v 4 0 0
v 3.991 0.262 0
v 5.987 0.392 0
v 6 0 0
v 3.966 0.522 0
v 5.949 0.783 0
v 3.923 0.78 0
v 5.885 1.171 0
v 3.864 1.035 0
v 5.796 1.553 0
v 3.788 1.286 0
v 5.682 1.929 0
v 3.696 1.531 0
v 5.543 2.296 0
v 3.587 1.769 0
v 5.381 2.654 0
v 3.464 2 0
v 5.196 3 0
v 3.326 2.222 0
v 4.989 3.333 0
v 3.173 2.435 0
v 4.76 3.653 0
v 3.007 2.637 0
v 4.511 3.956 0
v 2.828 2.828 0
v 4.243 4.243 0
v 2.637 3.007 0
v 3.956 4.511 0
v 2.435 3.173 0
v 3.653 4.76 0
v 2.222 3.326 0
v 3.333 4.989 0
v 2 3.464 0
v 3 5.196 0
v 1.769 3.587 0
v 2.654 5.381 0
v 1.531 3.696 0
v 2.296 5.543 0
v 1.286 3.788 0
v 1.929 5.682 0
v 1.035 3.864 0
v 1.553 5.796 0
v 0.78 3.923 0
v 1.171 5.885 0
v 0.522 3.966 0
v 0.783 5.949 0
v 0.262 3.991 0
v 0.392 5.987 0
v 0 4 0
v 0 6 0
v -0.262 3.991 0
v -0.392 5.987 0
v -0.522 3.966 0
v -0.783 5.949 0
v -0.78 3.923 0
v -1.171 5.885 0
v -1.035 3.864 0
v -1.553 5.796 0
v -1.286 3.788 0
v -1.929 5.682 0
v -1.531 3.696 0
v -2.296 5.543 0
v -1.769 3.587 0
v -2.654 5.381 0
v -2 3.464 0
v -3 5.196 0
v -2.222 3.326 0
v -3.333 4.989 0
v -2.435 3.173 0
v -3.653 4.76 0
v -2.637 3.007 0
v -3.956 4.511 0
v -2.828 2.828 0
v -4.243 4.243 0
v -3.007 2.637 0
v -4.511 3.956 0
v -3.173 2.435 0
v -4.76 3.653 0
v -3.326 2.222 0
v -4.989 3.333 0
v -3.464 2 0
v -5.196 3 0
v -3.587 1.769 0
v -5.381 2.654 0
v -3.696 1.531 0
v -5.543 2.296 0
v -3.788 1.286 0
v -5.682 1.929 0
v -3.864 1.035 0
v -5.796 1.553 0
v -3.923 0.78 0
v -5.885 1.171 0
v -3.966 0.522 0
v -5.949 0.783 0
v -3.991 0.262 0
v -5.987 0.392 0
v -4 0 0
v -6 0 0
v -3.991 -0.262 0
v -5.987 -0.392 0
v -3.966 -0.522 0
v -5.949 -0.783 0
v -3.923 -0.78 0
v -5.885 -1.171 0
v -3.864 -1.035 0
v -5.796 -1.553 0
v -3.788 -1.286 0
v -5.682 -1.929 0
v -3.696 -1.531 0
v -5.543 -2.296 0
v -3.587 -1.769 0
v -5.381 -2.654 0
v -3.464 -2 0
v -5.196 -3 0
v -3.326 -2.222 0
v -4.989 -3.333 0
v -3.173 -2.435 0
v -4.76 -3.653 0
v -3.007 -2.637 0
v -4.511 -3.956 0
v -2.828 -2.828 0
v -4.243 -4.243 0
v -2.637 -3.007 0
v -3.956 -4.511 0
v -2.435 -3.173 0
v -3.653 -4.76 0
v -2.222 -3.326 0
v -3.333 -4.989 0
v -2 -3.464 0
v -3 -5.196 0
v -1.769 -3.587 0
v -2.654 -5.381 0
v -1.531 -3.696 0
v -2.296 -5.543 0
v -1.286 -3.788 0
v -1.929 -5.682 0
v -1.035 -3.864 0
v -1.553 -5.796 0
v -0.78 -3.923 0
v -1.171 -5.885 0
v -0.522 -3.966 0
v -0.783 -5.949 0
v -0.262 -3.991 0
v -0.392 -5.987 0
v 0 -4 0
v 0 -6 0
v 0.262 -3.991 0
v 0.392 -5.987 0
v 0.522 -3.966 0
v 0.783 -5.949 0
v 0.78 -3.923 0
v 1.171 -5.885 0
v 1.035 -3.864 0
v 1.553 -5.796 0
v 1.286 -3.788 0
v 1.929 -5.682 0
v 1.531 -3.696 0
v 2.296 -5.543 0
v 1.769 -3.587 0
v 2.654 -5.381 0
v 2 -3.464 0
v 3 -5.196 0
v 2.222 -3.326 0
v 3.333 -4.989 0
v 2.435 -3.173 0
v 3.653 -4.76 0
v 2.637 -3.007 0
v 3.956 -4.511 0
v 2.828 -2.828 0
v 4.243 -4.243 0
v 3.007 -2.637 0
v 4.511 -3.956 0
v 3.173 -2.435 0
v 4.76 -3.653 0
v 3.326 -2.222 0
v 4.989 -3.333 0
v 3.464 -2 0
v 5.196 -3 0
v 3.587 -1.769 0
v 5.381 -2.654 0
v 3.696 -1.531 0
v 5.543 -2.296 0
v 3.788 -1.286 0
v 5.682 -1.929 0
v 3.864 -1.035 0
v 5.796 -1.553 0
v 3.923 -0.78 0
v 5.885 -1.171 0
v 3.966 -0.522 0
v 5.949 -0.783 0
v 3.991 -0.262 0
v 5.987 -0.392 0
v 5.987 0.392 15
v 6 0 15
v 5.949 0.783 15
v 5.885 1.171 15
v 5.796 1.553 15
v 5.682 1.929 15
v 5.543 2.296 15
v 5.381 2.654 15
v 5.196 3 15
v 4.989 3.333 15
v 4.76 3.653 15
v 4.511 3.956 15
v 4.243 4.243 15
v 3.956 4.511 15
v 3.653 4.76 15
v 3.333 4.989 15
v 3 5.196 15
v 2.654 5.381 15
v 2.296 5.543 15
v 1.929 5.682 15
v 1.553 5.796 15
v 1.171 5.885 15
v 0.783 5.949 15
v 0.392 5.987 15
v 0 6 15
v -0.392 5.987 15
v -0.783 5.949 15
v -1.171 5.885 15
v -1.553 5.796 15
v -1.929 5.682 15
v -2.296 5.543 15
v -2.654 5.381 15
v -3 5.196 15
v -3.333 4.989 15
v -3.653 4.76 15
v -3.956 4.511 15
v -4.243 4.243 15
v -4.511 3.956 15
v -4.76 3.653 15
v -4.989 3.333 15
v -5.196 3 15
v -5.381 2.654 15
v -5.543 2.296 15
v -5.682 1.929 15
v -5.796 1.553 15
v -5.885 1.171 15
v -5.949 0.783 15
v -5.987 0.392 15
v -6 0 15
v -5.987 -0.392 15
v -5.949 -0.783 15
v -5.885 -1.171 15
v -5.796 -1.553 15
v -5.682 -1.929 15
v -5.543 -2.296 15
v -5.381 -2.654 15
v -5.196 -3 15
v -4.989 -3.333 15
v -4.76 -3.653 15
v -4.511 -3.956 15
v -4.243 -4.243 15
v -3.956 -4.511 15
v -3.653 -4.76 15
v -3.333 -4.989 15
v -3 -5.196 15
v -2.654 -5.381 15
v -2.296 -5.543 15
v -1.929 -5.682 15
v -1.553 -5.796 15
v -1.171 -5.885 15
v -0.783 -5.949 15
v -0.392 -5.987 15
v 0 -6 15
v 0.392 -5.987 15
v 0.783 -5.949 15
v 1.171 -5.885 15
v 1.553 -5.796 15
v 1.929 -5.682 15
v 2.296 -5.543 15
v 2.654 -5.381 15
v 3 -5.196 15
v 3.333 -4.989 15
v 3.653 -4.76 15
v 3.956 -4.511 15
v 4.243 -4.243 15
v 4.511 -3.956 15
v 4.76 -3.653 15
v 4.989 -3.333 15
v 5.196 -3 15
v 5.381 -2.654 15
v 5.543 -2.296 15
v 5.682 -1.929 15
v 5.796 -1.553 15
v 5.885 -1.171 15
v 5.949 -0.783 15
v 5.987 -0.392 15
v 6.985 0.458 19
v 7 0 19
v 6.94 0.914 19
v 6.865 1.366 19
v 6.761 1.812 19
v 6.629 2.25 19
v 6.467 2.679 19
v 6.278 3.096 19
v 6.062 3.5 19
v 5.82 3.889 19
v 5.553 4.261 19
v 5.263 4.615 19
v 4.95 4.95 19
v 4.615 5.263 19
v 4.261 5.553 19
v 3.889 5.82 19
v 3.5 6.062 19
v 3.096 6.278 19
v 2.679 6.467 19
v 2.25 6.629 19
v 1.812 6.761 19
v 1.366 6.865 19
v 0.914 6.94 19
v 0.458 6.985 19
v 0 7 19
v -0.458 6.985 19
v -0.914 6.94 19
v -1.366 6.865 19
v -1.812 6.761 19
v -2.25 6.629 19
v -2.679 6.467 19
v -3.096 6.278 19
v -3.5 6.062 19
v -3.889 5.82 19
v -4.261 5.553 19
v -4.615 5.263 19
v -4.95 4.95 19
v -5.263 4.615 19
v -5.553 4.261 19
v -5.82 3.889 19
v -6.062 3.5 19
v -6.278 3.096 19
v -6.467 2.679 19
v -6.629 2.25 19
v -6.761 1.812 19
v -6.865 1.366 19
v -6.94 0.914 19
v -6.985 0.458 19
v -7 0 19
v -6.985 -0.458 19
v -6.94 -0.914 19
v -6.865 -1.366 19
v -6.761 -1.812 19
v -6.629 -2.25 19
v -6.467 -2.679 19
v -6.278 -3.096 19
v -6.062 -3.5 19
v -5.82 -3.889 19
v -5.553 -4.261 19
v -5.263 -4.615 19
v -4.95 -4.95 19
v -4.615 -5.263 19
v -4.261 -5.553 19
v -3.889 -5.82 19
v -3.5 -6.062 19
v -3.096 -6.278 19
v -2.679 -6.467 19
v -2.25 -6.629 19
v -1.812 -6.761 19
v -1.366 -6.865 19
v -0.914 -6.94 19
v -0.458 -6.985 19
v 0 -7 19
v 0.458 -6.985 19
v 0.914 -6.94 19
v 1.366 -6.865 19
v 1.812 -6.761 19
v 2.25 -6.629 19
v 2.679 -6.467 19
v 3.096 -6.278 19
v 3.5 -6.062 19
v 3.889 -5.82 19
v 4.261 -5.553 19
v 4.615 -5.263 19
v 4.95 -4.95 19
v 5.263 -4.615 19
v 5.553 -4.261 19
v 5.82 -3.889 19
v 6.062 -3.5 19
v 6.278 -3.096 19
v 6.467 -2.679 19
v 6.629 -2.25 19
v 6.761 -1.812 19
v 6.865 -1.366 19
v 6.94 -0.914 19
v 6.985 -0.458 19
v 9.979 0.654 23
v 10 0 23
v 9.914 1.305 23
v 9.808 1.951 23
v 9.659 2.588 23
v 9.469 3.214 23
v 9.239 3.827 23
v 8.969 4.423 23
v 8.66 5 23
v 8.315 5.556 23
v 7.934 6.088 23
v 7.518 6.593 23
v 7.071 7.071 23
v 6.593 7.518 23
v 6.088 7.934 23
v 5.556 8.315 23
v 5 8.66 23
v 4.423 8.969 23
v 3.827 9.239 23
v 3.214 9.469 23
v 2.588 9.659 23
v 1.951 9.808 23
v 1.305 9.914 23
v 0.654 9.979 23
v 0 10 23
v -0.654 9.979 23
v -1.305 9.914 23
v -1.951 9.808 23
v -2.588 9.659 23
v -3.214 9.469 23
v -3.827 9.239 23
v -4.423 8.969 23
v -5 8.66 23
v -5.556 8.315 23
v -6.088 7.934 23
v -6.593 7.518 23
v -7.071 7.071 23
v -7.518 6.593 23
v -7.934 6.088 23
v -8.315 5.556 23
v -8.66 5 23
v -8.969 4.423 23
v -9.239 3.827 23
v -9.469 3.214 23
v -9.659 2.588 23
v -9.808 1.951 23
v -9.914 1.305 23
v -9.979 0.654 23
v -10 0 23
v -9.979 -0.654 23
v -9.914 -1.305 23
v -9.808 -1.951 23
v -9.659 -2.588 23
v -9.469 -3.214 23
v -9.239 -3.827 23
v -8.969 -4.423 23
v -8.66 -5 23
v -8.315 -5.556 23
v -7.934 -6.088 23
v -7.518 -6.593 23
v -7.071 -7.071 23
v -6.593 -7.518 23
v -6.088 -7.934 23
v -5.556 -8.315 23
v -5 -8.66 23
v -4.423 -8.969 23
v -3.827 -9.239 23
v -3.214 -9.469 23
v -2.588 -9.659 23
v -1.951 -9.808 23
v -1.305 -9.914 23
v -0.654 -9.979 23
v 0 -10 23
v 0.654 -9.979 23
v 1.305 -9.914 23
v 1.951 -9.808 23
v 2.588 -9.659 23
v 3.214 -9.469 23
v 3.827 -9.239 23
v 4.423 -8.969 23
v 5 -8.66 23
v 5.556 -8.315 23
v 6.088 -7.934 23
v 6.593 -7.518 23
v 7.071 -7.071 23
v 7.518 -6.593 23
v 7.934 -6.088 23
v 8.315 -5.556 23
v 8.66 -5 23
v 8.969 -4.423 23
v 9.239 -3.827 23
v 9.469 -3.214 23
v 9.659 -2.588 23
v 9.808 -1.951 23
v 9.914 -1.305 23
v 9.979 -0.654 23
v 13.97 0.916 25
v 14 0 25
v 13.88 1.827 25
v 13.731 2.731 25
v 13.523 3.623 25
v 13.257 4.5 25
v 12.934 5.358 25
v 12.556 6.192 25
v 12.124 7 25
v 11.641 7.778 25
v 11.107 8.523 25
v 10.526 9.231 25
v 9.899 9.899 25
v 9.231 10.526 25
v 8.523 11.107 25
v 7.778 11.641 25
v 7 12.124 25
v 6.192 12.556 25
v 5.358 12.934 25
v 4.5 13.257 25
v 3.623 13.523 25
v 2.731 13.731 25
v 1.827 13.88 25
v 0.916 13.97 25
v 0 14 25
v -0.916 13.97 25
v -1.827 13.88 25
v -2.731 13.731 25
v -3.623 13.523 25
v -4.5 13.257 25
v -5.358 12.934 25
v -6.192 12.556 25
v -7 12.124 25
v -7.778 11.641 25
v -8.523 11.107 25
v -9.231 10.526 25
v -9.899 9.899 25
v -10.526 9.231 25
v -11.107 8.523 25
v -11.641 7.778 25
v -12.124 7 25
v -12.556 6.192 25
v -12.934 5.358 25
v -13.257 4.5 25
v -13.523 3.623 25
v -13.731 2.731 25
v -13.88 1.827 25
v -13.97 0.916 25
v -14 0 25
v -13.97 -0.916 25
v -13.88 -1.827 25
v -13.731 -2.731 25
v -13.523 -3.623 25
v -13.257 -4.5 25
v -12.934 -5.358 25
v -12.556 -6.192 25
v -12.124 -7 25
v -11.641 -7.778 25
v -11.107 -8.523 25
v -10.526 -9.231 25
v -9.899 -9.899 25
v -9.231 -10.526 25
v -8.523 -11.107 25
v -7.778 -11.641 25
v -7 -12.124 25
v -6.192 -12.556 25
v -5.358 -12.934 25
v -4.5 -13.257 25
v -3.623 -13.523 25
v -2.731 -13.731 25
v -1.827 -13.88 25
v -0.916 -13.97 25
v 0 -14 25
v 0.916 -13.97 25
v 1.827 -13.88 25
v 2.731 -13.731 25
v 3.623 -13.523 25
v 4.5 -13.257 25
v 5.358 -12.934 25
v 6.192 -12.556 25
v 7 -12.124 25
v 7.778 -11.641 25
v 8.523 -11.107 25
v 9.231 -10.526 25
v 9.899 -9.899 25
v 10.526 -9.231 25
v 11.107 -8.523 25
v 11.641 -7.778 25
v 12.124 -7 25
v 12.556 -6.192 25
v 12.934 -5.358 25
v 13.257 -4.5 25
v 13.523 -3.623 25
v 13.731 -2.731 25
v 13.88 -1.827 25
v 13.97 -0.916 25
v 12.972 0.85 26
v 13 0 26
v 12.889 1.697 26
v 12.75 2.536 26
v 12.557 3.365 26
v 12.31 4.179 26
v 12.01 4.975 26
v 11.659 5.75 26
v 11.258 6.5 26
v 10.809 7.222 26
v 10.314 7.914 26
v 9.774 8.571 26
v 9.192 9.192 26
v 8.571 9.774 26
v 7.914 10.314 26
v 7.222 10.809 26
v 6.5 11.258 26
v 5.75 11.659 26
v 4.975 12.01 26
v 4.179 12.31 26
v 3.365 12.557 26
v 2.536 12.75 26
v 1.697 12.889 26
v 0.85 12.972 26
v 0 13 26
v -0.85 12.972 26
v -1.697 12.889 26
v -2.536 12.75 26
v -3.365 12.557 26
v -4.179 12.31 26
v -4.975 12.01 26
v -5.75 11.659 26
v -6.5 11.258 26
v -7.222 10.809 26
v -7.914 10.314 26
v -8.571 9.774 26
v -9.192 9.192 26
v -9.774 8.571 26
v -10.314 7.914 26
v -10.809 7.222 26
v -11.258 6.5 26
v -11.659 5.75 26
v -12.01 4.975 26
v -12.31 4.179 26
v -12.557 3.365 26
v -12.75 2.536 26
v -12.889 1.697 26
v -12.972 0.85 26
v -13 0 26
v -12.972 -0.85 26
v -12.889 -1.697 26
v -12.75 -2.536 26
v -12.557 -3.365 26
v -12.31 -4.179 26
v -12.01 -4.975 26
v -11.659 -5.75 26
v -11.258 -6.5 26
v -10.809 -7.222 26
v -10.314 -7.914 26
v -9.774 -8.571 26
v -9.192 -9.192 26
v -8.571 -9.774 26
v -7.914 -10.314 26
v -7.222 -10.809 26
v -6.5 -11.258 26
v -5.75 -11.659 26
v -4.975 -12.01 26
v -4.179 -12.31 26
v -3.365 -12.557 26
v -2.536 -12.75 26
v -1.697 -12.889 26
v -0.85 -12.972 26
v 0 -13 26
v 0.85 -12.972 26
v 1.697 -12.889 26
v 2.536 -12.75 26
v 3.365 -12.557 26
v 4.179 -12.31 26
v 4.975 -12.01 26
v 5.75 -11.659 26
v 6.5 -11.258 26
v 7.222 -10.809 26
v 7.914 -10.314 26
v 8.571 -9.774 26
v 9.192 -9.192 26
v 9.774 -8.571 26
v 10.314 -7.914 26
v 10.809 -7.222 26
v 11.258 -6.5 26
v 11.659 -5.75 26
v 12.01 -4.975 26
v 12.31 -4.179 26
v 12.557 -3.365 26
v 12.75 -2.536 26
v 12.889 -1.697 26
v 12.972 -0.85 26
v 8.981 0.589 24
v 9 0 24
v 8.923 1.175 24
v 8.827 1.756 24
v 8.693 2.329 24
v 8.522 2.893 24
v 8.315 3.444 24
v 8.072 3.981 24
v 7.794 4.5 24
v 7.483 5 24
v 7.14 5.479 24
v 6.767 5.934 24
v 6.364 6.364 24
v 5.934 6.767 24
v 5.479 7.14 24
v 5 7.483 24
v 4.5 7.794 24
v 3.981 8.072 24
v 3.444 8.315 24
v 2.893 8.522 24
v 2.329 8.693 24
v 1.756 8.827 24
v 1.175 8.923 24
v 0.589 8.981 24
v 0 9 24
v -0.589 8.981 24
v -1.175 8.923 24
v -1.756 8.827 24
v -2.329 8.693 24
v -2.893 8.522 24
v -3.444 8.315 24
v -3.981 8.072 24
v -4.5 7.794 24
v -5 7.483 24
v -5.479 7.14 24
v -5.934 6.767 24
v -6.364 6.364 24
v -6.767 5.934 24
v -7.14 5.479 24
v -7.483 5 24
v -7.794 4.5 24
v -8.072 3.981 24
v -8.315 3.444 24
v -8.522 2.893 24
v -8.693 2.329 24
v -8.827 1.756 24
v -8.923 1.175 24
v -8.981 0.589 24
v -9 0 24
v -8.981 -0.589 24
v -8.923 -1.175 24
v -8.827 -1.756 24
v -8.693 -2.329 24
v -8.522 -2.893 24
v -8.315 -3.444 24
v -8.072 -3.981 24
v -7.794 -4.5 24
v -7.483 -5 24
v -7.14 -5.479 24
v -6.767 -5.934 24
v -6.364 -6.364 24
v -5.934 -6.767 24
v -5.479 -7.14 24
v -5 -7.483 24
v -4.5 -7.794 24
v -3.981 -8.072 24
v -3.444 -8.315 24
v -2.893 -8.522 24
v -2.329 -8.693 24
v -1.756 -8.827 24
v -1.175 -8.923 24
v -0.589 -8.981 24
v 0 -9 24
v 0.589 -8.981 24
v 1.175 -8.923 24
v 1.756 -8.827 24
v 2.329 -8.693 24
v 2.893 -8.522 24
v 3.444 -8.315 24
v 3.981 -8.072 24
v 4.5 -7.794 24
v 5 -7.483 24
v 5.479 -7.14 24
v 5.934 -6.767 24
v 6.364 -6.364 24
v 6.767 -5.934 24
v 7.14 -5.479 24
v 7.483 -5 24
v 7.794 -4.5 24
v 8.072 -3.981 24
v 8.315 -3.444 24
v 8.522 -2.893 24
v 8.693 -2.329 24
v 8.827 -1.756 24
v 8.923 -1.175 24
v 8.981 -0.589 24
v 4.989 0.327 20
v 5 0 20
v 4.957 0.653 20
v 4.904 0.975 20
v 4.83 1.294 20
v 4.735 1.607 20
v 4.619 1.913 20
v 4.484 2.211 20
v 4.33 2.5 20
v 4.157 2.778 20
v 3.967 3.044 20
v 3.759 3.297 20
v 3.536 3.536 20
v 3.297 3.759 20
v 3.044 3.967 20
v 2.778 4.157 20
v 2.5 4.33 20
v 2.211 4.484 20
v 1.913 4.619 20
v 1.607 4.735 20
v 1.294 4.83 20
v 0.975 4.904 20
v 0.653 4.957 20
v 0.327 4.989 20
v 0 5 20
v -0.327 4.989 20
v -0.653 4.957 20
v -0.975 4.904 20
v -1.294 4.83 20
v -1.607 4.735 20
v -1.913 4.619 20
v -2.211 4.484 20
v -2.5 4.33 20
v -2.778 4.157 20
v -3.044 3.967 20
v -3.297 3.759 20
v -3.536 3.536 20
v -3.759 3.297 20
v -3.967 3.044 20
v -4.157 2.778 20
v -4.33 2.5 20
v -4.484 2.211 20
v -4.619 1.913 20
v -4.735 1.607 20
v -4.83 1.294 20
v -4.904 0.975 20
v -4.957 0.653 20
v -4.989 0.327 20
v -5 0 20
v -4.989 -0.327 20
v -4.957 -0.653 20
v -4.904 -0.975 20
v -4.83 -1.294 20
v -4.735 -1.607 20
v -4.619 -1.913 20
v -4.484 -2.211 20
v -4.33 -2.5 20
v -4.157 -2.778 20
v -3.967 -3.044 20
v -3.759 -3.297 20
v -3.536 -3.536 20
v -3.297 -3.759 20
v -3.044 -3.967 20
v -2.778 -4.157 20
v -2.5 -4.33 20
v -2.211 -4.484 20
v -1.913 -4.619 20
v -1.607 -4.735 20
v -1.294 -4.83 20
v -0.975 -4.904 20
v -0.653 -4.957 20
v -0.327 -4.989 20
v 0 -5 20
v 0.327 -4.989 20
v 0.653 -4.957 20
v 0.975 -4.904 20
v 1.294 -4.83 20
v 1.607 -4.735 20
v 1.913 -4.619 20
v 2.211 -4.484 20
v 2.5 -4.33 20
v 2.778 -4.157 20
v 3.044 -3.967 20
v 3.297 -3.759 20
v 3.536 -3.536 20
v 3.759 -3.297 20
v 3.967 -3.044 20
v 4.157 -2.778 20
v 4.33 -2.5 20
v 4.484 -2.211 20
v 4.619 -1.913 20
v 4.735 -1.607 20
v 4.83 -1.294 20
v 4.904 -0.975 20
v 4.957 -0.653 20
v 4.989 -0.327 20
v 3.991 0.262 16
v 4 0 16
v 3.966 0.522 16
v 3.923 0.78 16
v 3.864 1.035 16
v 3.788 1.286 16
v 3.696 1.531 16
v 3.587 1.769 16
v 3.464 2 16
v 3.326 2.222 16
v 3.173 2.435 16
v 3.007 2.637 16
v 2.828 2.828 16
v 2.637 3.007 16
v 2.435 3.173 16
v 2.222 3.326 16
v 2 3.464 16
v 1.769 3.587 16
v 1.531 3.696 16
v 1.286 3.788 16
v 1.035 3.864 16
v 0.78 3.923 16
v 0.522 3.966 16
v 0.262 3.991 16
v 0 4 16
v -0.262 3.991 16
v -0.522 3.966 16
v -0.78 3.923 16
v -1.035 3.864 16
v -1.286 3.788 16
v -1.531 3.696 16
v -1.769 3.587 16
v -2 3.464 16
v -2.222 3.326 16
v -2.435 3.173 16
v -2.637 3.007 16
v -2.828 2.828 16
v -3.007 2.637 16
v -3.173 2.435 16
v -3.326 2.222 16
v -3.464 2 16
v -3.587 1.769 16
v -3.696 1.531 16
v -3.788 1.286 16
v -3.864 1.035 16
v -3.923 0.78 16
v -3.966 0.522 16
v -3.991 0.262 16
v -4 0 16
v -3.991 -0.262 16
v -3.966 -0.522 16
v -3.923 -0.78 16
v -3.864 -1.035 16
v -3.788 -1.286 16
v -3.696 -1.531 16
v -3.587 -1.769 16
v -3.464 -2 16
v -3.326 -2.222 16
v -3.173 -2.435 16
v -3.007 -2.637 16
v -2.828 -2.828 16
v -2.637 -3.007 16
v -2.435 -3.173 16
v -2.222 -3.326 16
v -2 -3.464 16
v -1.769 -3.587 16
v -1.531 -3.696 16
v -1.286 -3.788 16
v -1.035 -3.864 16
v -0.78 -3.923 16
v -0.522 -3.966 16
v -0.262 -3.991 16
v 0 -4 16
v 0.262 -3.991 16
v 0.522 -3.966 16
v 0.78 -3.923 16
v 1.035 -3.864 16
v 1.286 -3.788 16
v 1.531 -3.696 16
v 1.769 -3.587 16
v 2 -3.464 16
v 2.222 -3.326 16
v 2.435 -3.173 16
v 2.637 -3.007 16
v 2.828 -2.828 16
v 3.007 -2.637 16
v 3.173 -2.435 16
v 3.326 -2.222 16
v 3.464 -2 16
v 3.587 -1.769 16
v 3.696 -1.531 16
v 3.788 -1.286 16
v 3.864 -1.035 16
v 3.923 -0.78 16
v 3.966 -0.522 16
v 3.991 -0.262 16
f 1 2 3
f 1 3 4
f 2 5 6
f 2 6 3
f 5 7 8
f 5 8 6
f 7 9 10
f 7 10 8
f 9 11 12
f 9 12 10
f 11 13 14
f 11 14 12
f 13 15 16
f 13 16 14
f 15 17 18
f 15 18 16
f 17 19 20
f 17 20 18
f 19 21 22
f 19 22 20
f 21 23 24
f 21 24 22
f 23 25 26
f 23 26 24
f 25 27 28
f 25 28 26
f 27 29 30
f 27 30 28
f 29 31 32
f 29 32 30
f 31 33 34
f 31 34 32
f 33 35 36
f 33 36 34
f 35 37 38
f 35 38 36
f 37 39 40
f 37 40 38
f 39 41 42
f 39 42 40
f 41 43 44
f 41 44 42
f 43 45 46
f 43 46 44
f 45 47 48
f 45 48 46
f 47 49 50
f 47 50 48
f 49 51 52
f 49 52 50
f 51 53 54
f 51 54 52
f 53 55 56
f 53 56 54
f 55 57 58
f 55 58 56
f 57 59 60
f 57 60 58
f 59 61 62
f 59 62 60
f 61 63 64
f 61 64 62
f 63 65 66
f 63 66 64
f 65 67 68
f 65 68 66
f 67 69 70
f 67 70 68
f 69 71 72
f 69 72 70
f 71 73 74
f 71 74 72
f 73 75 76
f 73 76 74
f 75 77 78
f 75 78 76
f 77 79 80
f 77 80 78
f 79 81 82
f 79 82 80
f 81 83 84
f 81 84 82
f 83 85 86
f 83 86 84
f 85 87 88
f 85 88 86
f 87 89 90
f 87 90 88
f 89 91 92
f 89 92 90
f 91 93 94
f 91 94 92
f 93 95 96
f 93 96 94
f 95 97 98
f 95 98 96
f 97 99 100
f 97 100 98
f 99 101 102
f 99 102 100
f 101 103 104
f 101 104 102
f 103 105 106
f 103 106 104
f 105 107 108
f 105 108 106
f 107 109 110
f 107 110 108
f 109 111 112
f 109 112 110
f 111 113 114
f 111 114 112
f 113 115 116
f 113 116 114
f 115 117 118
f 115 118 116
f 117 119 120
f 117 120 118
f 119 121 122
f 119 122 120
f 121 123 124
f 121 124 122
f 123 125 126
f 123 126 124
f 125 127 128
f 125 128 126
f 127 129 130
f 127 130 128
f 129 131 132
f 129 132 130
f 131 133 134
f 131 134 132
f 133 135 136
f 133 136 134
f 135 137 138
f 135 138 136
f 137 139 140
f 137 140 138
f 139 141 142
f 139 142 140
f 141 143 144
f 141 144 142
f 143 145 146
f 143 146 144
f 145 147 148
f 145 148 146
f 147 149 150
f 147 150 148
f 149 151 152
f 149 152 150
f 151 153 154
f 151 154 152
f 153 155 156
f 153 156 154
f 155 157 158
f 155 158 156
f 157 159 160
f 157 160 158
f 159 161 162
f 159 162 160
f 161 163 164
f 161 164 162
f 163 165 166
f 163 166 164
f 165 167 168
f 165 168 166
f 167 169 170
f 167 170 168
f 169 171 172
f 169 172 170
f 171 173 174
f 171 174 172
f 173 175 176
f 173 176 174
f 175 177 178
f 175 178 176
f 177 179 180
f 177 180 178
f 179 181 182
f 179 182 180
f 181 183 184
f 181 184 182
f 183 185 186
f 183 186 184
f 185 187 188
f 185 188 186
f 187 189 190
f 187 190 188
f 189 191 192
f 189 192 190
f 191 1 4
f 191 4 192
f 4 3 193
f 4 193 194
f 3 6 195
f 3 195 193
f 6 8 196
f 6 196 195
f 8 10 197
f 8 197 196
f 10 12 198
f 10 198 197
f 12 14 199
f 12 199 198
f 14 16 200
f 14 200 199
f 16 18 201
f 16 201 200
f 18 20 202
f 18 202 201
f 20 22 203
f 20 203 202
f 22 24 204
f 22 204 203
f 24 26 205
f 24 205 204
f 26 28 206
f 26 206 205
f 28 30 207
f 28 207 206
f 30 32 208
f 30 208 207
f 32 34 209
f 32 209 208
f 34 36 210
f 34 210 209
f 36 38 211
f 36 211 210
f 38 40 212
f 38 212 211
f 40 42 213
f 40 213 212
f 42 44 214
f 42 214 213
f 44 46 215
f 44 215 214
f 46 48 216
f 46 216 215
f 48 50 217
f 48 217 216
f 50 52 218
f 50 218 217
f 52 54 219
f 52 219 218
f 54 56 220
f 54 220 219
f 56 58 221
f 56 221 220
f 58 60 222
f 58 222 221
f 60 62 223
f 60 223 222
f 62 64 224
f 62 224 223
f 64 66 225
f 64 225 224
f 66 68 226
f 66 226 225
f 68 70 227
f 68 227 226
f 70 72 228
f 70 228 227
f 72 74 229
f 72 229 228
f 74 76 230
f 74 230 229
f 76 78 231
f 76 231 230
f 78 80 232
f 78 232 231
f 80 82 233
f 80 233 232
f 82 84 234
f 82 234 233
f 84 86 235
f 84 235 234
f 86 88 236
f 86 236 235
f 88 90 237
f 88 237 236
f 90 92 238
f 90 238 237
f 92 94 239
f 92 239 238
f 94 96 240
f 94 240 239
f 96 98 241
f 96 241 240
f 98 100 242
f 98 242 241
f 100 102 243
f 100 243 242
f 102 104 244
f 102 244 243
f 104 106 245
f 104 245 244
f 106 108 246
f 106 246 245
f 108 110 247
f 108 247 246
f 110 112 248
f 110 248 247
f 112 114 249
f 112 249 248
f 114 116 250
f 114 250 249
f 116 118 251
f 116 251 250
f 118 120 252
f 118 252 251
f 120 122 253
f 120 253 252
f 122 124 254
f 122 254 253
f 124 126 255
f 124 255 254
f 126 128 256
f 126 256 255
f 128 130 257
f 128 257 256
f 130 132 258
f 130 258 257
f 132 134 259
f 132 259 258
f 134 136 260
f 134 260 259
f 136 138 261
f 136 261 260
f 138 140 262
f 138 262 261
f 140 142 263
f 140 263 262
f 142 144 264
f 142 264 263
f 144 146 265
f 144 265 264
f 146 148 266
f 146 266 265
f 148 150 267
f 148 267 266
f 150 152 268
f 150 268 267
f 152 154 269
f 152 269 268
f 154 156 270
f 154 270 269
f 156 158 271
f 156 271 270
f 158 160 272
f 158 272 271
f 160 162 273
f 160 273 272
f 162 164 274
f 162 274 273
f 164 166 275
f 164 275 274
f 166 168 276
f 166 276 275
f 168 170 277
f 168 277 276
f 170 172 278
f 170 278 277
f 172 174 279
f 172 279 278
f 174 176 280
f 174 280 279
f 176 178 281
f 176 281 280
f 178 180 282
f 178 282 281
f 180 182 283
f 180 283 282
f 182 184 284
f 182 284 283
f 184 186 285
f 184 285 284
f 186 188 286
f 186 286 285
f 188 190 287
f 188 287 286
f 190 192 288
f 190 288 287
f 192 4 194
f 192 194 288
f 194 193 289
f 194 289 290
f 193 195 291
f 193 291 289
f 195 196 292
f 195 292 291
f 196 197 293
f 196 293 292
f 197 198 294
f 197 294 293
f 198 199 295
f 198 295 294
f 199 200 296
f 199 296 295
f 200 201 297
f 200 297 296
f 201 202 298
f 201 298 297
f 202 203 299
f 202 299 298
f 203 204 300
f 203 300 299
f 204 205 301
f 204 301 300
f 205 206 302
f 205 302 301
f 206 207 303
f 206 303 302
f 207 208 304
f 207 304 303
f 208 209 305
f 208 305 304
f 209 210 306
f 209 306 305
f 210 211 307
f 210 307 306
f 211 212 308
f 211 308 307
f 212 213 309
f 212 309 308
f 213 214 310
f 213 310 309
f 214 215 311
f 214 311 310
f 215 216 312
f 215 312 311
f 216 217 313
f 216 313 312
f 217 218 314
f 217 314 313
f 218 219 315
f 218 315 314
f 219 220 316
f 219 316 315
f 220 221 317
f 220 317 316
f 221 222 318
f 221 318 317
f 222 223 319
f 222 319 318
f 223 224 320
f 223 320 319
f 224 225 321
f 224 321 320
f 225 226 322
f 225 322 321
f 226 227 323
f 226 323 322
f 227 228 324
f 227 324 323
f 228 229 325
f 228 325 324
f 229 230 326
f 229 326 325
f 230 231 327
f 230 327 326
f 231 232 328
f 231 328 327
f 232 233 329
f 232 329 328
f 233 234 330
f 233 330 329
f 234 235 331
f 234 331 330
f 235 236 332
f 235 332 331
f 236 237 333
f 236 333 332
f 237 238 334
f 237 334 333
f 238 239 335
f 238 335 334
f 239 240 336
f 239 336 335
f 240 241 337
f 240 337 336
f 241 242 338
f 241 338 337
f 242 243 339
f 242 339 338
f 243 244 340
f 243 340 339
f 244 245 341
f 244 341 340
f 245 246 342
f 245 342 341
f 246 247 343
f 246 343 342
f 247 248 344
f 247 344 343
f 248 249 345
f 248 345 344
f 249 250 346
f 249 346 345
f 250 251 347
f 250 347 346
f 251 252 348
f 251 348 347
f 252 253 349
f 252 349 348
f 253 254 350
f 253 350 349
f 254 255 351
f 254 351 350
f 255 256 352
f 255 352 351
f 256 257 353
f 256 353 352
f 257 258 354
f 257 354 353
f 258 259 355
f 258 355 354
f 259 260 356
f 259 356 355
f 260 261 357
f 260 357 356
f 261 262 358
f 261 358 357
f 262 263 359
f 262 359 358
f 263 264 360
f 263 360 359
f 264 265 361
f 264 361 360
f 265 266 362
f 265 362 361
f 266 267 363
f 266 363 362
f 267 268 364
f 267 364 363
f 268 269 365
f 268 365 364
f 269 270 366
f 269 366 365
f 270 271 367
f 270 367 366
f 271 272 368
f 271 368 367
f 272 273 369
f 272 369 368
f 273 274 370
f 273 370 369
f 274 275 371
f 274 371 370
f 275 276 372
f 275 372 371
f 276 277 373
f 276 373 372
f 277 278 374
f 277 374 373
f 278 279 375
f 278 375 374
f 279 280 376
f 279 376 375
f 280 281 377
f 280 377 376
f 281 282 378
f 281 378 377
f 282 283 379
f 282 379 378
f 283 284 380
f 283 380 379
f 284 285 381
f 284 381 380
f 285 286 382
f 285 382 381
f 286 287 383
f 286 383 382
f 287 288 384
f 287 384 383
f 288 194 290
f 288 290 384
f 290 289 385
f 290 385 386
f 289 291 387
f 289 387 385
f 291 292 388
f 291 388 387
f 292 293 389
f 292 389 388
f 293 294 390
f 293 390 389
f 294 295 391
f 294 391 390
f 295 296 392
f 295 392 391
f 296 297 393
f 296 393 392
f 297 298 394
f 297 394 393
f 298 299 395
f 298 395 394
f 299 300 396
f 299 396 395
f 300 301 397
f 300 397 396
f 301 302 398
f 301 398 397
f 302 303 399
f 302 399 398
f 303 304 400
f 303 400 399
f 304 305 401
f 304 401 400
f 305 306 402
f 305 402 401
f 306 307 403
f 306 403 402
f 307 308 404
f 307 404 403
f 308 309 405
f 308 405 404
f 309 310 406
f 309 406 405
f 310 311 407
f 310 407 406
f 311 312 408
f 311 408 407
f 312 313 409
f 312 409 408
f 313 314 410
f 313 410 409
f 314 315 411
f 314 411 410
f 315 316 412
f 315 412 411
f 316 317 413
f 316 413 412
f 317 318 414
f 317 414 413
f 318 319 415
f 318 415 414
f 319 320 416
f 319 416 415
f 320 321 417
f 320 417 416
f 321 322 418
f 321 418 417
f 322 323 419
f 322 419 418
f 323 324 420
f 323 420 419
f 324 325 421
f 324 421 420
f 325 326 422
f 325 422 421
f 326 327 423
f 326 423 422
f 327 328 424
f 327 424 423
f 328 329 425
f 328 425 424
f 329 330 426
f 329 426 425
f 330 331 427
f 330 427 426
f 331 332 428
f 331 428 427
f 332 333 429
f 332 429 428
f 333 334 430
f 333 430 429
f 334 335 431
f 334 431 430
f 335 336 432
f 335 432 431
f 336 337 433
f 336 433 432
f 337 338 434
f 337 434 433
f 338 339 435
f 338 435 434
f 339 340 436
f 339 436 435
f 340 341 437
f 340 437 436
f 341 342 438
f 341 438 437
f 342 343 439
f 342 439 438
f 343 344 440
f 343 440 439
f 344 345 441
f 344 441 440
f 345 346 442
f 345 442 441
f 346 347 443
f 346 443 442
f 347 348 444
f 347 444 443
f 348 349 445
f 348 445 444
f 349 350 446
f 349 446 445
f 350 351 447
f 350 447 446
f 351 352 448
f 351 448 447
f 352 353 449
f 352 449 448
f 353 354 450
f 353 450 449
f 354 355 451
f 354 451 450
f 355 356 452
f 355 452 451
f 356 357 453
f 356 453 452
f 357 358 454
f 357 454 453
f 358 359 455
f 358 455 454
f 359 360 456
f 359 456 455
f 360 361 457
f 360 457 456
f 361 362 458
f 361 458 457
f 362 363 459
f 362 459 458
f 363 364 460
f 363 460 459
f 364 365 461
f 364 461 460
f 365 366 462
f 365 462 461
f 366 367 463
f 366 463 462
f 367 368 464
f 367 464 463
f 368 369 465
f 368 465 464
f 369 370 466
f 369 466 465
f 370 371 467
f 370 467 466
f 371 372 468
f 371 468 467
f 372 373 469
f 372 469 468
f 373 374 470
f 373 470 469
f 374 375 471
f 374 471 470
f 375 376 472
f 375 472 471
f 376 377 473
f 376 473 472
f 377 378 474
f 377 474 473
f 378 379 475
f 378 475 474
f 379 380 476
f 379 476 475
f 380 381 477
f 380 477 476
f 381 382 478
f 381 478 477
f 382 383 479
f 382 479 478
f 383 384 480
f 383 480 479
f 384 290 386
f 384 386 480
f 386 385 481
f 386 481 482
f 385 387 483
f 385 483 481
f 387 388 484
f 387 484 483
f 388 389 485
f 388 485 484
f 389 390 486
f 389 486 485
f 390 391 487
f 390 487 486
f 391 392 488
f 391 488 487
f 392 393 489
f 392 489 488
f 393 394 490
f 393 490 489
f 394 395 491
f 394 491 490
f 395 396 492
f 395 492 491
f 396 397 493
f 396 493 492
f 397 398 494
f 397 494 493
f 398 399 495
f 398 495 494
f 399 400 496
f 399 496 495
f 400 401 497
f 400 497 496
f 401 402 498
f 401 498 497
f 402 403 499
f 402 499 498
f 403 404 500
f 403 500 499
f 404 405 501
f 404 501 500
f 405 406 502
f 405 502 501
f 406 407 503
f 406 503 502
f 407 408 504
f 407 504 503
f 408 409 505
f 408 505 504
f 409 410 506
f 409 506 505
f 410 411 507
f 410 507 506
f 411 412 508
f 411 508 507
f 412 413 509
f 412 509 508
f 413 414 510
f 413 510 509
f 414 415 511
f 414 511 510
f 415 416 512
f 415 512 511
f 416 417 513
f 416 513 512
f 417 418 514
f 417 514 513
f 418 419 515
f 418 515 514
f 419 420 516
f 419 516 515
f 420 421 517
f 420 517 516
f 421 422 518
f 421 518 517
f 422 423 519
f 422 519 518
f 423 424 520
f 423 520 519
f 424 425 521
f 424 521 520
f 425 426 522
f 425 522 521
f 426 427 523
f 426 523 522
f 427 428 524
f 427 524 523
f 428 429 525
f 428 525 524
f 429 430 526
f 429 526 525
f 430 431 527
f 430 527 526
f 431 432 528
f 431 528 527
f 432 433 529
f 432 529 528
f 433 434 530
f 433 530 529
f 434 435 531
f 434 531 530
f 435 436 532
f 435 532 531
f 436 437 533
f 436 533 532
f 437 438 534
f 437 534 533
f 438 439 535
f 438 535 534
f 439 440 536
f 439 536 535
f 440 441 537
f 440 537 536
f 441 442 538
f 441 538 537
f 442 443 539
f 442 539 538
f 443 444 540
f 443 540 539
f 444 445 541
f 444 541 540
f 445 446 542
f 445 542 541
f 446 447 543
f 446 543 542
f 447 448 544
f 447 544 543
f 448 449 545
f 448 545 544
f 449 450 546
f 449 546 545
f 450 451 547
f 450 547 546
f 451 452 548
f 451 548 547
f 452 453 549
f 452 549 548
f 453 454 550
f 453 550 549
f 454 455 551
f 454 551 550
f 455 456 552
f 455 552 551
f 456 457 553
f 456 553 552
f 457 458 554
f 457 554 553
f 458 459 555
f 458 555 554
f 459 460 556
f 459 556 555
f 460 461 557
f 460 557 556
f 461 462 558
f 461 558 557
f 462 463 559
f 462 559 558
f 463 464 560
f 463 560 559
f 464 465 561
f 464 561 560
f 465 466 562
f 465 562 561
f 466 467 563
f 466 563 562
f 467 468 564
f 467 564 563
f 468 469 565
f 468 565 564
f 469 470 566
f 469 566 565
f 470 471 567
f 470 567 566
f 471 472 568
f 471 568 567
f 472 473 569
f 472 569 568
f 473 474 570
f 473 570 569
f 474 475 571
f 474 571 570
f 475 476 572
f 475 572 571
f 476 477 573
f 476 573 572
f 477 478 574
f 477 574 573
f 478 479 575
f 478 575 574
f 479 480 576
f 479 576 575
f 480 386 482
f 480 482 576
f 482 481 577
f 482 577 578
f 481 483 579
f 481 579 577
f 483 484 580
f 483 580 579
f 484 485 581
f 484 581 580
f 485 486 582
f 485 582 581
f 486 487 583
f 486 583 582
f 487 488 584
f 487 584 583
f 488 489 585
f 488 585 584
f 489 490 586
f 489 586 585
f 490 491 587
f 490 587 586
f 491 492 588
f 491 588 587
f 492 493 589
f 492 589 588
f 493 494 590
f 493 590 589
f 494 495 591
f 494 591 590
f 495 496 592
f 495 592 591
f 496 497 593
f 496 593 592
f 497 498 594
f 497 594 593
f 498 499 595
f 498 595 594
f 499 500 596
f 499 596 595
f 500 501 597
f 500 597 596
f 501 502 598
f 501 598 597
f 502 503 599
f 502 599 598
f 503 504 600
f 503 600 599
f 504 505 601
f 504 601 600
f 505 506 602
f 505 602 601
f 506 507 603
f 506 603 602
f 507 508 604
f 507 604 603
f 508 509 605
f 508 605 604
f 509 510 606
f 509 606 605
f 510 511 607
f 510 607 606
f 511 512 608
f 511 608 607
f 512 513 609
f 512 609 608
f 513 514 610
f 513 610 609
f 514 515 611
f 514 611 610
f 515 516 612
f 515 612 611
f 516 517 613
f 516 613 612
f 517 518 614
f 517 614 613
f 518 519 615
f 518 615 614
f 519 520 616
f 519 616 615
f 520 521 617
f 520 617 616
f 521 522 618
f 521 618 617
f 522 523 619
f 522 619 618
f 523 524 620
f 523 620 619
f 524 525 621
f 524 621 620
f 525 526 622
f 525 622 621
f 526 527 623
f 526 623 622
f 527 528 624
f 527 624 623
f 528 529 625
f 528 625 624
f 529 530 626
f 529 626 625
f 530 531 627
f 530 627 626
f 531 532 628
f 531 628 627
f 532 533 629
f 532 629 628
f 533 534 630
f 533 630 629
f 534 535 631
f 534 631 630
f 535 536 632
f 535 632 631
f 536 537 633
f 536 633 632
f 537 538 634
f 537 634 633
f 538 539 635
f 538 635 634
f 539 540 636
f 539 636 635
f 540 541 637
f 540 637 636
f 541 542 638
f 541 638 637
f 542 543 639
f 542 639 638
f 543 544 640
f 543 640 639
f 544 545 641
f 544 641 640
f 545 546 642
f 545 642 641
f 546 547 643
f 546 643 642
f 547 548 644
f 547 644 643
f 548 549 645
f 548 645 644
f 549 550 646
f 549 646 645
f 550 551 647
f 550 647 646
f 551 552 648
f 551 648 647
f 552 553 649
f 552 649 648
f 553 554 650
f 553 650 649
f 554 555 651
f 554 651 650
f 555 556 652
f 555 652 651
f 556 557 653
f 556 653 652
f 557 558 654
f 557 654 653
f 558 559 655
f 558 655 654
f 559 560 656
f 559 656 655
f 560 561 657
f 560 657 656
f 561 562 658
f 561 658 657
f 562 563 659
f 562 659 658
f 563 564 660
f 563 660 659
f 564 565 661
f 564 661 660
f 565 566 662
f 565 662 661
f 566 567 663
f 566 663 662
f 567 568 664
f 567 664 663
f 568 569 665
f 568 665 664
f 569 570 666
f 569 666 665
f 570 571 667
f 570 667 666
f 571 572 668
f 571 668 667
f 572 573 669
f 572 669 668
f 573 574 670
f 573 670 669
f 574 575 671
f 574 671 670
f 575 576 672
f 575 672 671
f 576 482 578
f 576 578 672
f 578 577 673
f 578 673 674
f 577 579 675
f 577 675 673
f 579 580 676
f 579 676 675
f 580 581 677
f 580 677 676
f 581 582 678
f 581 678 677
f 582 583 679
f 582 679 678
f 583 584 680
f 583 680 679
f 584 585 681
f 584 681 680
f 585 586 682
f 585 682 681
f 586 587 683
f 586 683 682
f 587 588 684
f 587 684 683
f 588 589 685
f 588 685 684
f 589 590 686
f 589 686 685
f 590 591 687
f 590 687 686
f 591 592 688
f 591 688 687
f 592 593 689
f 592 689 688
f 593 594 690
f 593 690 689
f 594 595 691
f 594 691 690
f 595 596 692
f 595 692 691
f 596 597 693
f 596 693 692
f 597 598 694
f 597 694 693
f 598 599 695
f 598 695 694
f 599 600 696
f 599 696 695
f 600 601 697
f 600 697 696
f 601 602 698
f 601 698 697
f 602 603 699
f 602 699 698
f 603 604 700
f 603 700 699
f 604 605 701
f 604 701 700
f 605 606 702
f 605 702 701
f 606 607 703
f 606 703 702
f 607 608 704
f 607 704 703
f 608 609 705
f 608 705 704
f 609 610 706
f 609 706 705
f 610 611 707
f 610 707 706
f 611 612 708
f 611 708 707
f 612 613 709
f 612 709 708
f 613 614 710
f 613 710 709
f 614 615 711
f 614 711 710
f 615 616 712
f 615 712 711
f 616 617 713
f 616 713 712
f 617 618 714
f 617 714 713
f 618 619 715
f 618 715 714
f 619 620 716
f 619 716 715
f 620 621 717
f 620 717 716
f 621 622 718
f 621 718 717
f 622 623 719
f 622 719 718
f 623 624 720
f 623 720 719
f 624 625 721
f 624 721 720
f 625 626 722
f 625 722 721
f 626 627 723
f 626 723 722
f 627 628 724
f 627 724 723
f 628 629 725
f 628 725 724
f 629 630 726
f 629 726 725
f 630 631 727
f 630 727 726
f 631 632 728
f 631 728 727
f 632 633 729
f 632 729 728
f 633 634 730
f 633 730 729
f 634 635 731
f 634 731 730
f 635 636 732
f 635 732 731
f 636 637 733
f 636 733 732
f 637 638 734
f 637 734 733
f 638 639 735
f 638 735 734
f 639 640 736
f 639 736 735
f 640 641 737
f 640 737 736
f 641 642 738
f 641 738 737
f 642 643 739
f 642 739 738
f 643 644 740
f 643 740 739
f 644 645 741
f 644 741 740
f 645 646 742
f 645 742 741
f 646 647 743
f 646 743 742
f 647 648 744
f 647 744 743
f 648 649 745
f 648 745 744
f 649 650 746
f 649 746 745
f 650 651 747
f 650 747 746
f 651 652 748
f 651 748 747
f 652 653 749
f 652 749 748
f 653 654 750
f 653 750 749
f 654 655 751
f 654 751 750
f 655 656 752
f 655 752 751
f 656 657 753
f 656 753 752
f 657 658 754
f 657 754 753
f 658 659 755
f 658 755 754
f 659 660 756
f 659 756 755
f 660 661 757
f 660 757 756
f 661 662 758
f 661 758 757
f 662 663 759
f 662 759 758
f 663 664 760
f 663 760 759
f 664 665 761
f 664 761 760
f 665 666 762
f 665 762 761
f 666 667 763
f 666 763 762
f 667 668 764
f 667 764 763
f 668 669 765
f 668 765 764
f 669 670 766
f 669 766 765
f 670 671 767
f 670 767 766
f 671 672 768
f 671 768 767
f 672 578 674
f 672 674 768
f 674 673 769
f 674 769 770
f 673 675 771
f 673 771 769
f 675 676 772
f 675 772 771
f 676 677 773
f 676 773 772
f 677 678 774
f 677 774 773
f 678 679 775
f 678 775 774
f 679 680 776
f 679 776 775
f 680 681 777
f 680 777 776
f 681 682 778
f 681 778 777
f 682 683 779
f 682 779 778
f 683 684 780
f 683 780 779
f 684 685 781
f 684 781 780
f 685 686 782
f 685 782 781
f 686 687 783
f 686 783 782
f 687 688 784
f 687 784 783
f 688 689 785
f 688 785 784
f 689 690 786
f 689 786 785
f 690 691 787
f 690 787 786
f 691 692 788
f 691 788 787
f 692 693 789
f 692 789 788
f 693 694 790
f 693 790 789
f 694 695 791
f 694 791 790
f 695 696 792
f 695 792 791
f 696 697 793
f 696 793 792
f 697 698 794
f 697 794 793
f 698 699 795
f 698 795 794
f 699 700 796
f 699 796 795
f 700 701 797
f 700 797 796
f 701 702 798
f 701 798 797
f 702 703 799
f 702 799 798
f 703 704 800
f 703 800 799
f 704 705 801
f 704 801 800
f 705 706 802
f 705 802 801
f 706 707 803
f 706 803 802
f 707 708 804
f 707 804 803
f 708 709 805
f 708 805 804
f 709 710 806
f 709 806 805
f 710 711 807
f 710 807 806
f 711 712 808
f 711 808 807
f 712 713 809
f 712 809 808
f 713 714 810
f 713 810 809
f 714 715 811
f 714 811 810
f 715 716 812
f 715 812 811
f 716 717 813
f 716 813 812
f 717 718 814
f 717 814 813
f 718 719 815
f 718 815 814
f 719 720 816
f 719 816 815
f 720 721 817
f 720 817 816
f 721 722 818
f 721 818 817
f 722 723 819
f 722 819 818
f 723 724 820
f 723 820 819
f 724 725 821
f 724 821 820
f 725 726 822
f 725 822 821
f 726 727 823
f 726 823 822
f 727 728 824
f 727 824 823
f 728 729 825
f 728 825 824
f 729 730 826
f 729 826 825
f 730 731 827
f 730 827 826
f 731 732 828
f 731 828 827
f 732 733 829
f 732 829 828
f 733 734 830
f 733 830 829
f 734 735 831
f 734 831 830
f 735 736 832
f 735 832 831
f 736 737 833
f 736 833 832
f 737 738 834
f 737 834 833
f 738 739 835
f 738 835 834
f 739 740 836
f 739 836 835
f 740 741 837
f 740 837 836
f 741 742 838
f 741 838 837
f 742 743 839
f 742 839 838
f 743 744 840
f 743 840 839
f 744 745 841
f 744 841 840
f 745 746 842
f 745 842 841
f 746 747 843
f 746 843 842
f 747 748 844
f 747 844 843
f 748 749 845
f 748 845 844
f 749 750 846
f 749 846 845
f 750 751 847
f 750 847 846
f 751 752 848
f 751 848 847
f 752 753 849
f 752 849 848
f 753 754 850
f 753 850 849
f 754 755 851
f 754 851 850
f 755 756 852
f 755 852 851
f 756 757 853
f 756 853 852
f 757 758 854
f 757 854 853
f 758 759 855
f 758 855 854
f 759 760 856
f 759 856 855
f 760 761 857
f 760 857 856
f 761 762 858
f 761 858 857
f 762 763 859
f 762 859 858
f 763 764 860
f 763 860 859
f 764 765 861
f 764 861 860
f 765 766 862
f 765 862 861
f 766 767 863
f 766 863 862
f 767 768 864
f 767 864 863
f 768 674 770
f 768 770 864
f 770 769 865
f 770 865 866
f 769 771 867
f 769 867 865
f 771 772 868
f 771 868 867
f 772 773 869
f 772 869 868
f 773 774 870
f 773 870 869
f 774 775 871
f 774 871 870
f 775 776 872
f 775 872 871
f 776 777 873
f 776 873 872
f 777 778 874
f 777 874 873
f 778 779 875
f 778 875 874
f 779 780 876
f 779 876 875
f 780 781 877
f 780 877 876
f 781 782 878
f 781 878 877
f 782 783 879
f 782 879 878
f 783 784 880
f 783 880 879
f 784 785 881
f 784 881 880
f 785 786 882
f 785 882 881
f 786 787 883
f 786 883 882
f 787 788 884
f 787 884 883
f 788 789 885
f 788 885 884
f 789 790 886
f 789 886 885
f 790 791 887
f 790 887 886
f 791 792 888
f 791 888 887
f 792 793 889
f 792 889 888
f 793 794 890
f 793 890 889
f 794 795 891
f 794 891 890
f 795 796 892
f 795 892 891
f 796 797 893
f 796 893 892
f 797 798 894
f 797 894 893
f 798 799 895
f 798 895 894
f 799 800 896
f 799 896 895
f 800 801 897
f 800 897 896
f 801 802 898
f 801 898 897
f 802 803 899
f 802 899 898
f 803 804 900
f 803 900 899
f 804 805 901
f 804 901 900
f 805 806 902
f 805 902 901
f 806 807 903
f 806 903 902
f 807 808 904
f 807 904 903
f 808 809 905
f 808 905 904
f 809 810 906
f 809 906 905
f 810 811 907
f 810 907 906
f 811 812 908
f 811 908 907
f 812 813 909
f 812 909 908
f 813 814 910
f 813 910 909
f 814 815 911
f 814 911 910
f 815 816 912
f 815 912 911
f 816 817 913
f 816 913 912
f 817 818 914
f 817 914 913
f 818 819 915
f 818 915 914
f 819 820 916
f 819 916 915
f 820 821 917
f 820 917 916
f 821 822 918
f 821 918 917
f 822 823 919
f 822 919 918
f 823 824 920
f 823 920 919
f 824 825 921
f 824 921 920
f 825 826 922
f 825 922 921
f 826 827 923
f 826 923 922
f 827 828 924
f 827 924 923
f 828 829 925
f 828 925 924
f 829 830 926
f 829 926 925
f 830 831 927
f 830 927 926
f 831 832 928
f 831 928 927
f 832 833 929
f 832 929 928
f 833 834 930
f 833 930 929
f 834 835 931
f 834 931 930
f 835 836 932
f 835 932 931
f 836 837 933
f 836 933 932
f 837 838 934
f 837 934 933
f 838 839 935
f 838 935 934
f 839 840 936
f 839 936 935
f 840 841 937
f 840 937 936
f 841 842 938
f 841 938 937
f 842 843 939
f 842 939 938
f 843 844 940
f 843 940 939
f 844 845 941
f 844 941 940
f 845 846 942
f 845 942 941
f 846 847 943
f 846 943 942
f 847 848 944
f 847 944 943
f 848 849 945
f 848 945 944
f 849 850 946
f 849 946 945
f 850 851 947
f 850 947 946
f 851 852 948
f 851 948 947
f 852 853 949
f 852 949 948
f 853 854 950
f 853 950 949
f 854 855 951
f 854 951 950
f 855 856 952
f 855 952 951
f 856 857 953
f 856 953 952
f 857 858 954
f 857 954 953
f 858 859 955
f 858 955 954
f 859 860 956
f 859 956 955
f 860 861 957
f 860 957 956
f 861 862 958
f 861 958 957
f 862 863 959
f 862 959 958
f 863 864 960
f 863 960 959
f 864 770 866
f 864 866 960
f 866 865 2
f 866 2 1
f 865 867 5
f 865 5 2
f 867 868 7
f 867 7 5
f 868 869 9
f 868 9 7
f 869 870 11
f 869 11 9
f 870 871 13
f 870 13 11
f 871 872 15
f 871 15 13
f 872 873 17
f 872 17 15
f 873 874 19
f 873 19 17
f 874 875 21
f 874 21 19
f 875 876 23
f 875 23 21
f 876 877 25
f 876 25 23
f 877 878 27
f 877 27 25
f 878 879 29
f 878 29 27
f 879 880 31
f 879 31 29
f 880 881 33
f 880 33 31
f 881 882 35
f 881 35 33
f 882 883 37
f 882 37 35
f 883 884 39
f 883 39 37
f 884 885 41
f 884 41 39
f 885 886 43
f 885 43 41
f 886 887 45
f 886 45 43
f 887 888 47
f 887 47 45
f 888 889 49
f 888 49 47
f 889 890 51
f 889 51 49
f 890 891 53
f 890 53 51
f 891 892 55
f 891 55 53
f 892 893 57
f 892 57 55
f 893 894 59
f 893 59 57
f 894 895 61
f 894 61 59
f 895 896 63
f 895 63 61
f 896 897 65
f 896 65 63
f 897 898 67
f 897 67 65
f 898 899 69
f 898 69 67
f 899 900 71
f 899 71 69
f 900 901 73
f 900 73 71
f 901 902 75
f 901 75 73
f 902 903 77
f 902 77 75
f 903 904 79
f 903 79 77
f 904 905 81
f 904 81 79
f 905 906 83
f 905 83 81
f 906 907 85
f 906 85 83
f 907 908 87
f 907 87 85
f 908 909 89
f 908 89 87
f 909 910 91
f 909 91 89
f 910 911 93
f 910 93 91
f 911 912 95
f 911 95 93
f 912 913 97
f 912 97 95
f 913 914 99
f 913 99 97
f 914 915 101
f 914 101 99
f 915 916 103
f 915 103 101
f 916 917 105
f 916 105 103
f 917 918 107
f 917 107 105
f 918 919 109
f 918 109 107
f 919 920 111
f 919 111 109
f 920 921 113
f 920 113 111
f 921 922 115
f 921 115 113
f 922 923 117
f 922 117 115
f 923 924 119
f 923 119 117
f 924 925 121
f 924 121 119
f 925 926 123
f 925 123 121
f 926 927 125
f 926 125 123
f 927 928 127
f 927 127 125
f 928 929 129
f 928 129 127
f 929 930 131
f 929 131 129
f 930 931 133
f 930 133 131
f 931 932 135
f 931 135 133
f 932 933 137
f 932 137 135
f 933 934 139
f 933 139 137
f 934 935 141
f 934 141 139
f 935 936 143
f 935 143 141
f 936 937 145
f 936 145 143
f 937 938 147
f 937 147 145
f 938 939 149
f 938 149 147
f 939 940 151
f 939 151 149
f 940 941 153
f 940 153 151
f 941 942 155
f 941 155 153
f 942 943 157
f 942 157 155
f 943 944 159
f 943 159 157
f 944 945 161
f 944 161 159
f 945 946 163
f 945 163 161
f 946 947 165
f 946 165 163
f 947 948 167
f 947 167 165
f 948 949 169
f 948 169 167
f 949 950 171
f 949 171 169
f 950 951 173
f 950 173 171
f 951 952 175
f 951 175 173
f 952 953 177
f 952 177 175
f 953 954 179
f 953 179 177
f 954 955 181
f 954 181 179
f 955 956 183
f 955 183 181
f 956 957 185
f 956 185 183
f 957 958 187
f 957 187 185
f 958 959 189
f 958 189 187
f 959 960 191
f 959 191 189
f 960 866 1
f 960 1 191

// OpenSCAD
// Original MechIntel educational model. CC0-1.0. Units: mm.
// Not a standardized or load-rated component.
$fn=96;
// Section points: [radius, height], mm. Edit to change the profile.
section=[[4, 0], [6, 0], [6, 15], [7, 19], [10, 23], [14, 25], [13, 26], [9, 24], [5, 20], [4, 16]];
rotate_extrude($fn=96) polygon(points=section);
